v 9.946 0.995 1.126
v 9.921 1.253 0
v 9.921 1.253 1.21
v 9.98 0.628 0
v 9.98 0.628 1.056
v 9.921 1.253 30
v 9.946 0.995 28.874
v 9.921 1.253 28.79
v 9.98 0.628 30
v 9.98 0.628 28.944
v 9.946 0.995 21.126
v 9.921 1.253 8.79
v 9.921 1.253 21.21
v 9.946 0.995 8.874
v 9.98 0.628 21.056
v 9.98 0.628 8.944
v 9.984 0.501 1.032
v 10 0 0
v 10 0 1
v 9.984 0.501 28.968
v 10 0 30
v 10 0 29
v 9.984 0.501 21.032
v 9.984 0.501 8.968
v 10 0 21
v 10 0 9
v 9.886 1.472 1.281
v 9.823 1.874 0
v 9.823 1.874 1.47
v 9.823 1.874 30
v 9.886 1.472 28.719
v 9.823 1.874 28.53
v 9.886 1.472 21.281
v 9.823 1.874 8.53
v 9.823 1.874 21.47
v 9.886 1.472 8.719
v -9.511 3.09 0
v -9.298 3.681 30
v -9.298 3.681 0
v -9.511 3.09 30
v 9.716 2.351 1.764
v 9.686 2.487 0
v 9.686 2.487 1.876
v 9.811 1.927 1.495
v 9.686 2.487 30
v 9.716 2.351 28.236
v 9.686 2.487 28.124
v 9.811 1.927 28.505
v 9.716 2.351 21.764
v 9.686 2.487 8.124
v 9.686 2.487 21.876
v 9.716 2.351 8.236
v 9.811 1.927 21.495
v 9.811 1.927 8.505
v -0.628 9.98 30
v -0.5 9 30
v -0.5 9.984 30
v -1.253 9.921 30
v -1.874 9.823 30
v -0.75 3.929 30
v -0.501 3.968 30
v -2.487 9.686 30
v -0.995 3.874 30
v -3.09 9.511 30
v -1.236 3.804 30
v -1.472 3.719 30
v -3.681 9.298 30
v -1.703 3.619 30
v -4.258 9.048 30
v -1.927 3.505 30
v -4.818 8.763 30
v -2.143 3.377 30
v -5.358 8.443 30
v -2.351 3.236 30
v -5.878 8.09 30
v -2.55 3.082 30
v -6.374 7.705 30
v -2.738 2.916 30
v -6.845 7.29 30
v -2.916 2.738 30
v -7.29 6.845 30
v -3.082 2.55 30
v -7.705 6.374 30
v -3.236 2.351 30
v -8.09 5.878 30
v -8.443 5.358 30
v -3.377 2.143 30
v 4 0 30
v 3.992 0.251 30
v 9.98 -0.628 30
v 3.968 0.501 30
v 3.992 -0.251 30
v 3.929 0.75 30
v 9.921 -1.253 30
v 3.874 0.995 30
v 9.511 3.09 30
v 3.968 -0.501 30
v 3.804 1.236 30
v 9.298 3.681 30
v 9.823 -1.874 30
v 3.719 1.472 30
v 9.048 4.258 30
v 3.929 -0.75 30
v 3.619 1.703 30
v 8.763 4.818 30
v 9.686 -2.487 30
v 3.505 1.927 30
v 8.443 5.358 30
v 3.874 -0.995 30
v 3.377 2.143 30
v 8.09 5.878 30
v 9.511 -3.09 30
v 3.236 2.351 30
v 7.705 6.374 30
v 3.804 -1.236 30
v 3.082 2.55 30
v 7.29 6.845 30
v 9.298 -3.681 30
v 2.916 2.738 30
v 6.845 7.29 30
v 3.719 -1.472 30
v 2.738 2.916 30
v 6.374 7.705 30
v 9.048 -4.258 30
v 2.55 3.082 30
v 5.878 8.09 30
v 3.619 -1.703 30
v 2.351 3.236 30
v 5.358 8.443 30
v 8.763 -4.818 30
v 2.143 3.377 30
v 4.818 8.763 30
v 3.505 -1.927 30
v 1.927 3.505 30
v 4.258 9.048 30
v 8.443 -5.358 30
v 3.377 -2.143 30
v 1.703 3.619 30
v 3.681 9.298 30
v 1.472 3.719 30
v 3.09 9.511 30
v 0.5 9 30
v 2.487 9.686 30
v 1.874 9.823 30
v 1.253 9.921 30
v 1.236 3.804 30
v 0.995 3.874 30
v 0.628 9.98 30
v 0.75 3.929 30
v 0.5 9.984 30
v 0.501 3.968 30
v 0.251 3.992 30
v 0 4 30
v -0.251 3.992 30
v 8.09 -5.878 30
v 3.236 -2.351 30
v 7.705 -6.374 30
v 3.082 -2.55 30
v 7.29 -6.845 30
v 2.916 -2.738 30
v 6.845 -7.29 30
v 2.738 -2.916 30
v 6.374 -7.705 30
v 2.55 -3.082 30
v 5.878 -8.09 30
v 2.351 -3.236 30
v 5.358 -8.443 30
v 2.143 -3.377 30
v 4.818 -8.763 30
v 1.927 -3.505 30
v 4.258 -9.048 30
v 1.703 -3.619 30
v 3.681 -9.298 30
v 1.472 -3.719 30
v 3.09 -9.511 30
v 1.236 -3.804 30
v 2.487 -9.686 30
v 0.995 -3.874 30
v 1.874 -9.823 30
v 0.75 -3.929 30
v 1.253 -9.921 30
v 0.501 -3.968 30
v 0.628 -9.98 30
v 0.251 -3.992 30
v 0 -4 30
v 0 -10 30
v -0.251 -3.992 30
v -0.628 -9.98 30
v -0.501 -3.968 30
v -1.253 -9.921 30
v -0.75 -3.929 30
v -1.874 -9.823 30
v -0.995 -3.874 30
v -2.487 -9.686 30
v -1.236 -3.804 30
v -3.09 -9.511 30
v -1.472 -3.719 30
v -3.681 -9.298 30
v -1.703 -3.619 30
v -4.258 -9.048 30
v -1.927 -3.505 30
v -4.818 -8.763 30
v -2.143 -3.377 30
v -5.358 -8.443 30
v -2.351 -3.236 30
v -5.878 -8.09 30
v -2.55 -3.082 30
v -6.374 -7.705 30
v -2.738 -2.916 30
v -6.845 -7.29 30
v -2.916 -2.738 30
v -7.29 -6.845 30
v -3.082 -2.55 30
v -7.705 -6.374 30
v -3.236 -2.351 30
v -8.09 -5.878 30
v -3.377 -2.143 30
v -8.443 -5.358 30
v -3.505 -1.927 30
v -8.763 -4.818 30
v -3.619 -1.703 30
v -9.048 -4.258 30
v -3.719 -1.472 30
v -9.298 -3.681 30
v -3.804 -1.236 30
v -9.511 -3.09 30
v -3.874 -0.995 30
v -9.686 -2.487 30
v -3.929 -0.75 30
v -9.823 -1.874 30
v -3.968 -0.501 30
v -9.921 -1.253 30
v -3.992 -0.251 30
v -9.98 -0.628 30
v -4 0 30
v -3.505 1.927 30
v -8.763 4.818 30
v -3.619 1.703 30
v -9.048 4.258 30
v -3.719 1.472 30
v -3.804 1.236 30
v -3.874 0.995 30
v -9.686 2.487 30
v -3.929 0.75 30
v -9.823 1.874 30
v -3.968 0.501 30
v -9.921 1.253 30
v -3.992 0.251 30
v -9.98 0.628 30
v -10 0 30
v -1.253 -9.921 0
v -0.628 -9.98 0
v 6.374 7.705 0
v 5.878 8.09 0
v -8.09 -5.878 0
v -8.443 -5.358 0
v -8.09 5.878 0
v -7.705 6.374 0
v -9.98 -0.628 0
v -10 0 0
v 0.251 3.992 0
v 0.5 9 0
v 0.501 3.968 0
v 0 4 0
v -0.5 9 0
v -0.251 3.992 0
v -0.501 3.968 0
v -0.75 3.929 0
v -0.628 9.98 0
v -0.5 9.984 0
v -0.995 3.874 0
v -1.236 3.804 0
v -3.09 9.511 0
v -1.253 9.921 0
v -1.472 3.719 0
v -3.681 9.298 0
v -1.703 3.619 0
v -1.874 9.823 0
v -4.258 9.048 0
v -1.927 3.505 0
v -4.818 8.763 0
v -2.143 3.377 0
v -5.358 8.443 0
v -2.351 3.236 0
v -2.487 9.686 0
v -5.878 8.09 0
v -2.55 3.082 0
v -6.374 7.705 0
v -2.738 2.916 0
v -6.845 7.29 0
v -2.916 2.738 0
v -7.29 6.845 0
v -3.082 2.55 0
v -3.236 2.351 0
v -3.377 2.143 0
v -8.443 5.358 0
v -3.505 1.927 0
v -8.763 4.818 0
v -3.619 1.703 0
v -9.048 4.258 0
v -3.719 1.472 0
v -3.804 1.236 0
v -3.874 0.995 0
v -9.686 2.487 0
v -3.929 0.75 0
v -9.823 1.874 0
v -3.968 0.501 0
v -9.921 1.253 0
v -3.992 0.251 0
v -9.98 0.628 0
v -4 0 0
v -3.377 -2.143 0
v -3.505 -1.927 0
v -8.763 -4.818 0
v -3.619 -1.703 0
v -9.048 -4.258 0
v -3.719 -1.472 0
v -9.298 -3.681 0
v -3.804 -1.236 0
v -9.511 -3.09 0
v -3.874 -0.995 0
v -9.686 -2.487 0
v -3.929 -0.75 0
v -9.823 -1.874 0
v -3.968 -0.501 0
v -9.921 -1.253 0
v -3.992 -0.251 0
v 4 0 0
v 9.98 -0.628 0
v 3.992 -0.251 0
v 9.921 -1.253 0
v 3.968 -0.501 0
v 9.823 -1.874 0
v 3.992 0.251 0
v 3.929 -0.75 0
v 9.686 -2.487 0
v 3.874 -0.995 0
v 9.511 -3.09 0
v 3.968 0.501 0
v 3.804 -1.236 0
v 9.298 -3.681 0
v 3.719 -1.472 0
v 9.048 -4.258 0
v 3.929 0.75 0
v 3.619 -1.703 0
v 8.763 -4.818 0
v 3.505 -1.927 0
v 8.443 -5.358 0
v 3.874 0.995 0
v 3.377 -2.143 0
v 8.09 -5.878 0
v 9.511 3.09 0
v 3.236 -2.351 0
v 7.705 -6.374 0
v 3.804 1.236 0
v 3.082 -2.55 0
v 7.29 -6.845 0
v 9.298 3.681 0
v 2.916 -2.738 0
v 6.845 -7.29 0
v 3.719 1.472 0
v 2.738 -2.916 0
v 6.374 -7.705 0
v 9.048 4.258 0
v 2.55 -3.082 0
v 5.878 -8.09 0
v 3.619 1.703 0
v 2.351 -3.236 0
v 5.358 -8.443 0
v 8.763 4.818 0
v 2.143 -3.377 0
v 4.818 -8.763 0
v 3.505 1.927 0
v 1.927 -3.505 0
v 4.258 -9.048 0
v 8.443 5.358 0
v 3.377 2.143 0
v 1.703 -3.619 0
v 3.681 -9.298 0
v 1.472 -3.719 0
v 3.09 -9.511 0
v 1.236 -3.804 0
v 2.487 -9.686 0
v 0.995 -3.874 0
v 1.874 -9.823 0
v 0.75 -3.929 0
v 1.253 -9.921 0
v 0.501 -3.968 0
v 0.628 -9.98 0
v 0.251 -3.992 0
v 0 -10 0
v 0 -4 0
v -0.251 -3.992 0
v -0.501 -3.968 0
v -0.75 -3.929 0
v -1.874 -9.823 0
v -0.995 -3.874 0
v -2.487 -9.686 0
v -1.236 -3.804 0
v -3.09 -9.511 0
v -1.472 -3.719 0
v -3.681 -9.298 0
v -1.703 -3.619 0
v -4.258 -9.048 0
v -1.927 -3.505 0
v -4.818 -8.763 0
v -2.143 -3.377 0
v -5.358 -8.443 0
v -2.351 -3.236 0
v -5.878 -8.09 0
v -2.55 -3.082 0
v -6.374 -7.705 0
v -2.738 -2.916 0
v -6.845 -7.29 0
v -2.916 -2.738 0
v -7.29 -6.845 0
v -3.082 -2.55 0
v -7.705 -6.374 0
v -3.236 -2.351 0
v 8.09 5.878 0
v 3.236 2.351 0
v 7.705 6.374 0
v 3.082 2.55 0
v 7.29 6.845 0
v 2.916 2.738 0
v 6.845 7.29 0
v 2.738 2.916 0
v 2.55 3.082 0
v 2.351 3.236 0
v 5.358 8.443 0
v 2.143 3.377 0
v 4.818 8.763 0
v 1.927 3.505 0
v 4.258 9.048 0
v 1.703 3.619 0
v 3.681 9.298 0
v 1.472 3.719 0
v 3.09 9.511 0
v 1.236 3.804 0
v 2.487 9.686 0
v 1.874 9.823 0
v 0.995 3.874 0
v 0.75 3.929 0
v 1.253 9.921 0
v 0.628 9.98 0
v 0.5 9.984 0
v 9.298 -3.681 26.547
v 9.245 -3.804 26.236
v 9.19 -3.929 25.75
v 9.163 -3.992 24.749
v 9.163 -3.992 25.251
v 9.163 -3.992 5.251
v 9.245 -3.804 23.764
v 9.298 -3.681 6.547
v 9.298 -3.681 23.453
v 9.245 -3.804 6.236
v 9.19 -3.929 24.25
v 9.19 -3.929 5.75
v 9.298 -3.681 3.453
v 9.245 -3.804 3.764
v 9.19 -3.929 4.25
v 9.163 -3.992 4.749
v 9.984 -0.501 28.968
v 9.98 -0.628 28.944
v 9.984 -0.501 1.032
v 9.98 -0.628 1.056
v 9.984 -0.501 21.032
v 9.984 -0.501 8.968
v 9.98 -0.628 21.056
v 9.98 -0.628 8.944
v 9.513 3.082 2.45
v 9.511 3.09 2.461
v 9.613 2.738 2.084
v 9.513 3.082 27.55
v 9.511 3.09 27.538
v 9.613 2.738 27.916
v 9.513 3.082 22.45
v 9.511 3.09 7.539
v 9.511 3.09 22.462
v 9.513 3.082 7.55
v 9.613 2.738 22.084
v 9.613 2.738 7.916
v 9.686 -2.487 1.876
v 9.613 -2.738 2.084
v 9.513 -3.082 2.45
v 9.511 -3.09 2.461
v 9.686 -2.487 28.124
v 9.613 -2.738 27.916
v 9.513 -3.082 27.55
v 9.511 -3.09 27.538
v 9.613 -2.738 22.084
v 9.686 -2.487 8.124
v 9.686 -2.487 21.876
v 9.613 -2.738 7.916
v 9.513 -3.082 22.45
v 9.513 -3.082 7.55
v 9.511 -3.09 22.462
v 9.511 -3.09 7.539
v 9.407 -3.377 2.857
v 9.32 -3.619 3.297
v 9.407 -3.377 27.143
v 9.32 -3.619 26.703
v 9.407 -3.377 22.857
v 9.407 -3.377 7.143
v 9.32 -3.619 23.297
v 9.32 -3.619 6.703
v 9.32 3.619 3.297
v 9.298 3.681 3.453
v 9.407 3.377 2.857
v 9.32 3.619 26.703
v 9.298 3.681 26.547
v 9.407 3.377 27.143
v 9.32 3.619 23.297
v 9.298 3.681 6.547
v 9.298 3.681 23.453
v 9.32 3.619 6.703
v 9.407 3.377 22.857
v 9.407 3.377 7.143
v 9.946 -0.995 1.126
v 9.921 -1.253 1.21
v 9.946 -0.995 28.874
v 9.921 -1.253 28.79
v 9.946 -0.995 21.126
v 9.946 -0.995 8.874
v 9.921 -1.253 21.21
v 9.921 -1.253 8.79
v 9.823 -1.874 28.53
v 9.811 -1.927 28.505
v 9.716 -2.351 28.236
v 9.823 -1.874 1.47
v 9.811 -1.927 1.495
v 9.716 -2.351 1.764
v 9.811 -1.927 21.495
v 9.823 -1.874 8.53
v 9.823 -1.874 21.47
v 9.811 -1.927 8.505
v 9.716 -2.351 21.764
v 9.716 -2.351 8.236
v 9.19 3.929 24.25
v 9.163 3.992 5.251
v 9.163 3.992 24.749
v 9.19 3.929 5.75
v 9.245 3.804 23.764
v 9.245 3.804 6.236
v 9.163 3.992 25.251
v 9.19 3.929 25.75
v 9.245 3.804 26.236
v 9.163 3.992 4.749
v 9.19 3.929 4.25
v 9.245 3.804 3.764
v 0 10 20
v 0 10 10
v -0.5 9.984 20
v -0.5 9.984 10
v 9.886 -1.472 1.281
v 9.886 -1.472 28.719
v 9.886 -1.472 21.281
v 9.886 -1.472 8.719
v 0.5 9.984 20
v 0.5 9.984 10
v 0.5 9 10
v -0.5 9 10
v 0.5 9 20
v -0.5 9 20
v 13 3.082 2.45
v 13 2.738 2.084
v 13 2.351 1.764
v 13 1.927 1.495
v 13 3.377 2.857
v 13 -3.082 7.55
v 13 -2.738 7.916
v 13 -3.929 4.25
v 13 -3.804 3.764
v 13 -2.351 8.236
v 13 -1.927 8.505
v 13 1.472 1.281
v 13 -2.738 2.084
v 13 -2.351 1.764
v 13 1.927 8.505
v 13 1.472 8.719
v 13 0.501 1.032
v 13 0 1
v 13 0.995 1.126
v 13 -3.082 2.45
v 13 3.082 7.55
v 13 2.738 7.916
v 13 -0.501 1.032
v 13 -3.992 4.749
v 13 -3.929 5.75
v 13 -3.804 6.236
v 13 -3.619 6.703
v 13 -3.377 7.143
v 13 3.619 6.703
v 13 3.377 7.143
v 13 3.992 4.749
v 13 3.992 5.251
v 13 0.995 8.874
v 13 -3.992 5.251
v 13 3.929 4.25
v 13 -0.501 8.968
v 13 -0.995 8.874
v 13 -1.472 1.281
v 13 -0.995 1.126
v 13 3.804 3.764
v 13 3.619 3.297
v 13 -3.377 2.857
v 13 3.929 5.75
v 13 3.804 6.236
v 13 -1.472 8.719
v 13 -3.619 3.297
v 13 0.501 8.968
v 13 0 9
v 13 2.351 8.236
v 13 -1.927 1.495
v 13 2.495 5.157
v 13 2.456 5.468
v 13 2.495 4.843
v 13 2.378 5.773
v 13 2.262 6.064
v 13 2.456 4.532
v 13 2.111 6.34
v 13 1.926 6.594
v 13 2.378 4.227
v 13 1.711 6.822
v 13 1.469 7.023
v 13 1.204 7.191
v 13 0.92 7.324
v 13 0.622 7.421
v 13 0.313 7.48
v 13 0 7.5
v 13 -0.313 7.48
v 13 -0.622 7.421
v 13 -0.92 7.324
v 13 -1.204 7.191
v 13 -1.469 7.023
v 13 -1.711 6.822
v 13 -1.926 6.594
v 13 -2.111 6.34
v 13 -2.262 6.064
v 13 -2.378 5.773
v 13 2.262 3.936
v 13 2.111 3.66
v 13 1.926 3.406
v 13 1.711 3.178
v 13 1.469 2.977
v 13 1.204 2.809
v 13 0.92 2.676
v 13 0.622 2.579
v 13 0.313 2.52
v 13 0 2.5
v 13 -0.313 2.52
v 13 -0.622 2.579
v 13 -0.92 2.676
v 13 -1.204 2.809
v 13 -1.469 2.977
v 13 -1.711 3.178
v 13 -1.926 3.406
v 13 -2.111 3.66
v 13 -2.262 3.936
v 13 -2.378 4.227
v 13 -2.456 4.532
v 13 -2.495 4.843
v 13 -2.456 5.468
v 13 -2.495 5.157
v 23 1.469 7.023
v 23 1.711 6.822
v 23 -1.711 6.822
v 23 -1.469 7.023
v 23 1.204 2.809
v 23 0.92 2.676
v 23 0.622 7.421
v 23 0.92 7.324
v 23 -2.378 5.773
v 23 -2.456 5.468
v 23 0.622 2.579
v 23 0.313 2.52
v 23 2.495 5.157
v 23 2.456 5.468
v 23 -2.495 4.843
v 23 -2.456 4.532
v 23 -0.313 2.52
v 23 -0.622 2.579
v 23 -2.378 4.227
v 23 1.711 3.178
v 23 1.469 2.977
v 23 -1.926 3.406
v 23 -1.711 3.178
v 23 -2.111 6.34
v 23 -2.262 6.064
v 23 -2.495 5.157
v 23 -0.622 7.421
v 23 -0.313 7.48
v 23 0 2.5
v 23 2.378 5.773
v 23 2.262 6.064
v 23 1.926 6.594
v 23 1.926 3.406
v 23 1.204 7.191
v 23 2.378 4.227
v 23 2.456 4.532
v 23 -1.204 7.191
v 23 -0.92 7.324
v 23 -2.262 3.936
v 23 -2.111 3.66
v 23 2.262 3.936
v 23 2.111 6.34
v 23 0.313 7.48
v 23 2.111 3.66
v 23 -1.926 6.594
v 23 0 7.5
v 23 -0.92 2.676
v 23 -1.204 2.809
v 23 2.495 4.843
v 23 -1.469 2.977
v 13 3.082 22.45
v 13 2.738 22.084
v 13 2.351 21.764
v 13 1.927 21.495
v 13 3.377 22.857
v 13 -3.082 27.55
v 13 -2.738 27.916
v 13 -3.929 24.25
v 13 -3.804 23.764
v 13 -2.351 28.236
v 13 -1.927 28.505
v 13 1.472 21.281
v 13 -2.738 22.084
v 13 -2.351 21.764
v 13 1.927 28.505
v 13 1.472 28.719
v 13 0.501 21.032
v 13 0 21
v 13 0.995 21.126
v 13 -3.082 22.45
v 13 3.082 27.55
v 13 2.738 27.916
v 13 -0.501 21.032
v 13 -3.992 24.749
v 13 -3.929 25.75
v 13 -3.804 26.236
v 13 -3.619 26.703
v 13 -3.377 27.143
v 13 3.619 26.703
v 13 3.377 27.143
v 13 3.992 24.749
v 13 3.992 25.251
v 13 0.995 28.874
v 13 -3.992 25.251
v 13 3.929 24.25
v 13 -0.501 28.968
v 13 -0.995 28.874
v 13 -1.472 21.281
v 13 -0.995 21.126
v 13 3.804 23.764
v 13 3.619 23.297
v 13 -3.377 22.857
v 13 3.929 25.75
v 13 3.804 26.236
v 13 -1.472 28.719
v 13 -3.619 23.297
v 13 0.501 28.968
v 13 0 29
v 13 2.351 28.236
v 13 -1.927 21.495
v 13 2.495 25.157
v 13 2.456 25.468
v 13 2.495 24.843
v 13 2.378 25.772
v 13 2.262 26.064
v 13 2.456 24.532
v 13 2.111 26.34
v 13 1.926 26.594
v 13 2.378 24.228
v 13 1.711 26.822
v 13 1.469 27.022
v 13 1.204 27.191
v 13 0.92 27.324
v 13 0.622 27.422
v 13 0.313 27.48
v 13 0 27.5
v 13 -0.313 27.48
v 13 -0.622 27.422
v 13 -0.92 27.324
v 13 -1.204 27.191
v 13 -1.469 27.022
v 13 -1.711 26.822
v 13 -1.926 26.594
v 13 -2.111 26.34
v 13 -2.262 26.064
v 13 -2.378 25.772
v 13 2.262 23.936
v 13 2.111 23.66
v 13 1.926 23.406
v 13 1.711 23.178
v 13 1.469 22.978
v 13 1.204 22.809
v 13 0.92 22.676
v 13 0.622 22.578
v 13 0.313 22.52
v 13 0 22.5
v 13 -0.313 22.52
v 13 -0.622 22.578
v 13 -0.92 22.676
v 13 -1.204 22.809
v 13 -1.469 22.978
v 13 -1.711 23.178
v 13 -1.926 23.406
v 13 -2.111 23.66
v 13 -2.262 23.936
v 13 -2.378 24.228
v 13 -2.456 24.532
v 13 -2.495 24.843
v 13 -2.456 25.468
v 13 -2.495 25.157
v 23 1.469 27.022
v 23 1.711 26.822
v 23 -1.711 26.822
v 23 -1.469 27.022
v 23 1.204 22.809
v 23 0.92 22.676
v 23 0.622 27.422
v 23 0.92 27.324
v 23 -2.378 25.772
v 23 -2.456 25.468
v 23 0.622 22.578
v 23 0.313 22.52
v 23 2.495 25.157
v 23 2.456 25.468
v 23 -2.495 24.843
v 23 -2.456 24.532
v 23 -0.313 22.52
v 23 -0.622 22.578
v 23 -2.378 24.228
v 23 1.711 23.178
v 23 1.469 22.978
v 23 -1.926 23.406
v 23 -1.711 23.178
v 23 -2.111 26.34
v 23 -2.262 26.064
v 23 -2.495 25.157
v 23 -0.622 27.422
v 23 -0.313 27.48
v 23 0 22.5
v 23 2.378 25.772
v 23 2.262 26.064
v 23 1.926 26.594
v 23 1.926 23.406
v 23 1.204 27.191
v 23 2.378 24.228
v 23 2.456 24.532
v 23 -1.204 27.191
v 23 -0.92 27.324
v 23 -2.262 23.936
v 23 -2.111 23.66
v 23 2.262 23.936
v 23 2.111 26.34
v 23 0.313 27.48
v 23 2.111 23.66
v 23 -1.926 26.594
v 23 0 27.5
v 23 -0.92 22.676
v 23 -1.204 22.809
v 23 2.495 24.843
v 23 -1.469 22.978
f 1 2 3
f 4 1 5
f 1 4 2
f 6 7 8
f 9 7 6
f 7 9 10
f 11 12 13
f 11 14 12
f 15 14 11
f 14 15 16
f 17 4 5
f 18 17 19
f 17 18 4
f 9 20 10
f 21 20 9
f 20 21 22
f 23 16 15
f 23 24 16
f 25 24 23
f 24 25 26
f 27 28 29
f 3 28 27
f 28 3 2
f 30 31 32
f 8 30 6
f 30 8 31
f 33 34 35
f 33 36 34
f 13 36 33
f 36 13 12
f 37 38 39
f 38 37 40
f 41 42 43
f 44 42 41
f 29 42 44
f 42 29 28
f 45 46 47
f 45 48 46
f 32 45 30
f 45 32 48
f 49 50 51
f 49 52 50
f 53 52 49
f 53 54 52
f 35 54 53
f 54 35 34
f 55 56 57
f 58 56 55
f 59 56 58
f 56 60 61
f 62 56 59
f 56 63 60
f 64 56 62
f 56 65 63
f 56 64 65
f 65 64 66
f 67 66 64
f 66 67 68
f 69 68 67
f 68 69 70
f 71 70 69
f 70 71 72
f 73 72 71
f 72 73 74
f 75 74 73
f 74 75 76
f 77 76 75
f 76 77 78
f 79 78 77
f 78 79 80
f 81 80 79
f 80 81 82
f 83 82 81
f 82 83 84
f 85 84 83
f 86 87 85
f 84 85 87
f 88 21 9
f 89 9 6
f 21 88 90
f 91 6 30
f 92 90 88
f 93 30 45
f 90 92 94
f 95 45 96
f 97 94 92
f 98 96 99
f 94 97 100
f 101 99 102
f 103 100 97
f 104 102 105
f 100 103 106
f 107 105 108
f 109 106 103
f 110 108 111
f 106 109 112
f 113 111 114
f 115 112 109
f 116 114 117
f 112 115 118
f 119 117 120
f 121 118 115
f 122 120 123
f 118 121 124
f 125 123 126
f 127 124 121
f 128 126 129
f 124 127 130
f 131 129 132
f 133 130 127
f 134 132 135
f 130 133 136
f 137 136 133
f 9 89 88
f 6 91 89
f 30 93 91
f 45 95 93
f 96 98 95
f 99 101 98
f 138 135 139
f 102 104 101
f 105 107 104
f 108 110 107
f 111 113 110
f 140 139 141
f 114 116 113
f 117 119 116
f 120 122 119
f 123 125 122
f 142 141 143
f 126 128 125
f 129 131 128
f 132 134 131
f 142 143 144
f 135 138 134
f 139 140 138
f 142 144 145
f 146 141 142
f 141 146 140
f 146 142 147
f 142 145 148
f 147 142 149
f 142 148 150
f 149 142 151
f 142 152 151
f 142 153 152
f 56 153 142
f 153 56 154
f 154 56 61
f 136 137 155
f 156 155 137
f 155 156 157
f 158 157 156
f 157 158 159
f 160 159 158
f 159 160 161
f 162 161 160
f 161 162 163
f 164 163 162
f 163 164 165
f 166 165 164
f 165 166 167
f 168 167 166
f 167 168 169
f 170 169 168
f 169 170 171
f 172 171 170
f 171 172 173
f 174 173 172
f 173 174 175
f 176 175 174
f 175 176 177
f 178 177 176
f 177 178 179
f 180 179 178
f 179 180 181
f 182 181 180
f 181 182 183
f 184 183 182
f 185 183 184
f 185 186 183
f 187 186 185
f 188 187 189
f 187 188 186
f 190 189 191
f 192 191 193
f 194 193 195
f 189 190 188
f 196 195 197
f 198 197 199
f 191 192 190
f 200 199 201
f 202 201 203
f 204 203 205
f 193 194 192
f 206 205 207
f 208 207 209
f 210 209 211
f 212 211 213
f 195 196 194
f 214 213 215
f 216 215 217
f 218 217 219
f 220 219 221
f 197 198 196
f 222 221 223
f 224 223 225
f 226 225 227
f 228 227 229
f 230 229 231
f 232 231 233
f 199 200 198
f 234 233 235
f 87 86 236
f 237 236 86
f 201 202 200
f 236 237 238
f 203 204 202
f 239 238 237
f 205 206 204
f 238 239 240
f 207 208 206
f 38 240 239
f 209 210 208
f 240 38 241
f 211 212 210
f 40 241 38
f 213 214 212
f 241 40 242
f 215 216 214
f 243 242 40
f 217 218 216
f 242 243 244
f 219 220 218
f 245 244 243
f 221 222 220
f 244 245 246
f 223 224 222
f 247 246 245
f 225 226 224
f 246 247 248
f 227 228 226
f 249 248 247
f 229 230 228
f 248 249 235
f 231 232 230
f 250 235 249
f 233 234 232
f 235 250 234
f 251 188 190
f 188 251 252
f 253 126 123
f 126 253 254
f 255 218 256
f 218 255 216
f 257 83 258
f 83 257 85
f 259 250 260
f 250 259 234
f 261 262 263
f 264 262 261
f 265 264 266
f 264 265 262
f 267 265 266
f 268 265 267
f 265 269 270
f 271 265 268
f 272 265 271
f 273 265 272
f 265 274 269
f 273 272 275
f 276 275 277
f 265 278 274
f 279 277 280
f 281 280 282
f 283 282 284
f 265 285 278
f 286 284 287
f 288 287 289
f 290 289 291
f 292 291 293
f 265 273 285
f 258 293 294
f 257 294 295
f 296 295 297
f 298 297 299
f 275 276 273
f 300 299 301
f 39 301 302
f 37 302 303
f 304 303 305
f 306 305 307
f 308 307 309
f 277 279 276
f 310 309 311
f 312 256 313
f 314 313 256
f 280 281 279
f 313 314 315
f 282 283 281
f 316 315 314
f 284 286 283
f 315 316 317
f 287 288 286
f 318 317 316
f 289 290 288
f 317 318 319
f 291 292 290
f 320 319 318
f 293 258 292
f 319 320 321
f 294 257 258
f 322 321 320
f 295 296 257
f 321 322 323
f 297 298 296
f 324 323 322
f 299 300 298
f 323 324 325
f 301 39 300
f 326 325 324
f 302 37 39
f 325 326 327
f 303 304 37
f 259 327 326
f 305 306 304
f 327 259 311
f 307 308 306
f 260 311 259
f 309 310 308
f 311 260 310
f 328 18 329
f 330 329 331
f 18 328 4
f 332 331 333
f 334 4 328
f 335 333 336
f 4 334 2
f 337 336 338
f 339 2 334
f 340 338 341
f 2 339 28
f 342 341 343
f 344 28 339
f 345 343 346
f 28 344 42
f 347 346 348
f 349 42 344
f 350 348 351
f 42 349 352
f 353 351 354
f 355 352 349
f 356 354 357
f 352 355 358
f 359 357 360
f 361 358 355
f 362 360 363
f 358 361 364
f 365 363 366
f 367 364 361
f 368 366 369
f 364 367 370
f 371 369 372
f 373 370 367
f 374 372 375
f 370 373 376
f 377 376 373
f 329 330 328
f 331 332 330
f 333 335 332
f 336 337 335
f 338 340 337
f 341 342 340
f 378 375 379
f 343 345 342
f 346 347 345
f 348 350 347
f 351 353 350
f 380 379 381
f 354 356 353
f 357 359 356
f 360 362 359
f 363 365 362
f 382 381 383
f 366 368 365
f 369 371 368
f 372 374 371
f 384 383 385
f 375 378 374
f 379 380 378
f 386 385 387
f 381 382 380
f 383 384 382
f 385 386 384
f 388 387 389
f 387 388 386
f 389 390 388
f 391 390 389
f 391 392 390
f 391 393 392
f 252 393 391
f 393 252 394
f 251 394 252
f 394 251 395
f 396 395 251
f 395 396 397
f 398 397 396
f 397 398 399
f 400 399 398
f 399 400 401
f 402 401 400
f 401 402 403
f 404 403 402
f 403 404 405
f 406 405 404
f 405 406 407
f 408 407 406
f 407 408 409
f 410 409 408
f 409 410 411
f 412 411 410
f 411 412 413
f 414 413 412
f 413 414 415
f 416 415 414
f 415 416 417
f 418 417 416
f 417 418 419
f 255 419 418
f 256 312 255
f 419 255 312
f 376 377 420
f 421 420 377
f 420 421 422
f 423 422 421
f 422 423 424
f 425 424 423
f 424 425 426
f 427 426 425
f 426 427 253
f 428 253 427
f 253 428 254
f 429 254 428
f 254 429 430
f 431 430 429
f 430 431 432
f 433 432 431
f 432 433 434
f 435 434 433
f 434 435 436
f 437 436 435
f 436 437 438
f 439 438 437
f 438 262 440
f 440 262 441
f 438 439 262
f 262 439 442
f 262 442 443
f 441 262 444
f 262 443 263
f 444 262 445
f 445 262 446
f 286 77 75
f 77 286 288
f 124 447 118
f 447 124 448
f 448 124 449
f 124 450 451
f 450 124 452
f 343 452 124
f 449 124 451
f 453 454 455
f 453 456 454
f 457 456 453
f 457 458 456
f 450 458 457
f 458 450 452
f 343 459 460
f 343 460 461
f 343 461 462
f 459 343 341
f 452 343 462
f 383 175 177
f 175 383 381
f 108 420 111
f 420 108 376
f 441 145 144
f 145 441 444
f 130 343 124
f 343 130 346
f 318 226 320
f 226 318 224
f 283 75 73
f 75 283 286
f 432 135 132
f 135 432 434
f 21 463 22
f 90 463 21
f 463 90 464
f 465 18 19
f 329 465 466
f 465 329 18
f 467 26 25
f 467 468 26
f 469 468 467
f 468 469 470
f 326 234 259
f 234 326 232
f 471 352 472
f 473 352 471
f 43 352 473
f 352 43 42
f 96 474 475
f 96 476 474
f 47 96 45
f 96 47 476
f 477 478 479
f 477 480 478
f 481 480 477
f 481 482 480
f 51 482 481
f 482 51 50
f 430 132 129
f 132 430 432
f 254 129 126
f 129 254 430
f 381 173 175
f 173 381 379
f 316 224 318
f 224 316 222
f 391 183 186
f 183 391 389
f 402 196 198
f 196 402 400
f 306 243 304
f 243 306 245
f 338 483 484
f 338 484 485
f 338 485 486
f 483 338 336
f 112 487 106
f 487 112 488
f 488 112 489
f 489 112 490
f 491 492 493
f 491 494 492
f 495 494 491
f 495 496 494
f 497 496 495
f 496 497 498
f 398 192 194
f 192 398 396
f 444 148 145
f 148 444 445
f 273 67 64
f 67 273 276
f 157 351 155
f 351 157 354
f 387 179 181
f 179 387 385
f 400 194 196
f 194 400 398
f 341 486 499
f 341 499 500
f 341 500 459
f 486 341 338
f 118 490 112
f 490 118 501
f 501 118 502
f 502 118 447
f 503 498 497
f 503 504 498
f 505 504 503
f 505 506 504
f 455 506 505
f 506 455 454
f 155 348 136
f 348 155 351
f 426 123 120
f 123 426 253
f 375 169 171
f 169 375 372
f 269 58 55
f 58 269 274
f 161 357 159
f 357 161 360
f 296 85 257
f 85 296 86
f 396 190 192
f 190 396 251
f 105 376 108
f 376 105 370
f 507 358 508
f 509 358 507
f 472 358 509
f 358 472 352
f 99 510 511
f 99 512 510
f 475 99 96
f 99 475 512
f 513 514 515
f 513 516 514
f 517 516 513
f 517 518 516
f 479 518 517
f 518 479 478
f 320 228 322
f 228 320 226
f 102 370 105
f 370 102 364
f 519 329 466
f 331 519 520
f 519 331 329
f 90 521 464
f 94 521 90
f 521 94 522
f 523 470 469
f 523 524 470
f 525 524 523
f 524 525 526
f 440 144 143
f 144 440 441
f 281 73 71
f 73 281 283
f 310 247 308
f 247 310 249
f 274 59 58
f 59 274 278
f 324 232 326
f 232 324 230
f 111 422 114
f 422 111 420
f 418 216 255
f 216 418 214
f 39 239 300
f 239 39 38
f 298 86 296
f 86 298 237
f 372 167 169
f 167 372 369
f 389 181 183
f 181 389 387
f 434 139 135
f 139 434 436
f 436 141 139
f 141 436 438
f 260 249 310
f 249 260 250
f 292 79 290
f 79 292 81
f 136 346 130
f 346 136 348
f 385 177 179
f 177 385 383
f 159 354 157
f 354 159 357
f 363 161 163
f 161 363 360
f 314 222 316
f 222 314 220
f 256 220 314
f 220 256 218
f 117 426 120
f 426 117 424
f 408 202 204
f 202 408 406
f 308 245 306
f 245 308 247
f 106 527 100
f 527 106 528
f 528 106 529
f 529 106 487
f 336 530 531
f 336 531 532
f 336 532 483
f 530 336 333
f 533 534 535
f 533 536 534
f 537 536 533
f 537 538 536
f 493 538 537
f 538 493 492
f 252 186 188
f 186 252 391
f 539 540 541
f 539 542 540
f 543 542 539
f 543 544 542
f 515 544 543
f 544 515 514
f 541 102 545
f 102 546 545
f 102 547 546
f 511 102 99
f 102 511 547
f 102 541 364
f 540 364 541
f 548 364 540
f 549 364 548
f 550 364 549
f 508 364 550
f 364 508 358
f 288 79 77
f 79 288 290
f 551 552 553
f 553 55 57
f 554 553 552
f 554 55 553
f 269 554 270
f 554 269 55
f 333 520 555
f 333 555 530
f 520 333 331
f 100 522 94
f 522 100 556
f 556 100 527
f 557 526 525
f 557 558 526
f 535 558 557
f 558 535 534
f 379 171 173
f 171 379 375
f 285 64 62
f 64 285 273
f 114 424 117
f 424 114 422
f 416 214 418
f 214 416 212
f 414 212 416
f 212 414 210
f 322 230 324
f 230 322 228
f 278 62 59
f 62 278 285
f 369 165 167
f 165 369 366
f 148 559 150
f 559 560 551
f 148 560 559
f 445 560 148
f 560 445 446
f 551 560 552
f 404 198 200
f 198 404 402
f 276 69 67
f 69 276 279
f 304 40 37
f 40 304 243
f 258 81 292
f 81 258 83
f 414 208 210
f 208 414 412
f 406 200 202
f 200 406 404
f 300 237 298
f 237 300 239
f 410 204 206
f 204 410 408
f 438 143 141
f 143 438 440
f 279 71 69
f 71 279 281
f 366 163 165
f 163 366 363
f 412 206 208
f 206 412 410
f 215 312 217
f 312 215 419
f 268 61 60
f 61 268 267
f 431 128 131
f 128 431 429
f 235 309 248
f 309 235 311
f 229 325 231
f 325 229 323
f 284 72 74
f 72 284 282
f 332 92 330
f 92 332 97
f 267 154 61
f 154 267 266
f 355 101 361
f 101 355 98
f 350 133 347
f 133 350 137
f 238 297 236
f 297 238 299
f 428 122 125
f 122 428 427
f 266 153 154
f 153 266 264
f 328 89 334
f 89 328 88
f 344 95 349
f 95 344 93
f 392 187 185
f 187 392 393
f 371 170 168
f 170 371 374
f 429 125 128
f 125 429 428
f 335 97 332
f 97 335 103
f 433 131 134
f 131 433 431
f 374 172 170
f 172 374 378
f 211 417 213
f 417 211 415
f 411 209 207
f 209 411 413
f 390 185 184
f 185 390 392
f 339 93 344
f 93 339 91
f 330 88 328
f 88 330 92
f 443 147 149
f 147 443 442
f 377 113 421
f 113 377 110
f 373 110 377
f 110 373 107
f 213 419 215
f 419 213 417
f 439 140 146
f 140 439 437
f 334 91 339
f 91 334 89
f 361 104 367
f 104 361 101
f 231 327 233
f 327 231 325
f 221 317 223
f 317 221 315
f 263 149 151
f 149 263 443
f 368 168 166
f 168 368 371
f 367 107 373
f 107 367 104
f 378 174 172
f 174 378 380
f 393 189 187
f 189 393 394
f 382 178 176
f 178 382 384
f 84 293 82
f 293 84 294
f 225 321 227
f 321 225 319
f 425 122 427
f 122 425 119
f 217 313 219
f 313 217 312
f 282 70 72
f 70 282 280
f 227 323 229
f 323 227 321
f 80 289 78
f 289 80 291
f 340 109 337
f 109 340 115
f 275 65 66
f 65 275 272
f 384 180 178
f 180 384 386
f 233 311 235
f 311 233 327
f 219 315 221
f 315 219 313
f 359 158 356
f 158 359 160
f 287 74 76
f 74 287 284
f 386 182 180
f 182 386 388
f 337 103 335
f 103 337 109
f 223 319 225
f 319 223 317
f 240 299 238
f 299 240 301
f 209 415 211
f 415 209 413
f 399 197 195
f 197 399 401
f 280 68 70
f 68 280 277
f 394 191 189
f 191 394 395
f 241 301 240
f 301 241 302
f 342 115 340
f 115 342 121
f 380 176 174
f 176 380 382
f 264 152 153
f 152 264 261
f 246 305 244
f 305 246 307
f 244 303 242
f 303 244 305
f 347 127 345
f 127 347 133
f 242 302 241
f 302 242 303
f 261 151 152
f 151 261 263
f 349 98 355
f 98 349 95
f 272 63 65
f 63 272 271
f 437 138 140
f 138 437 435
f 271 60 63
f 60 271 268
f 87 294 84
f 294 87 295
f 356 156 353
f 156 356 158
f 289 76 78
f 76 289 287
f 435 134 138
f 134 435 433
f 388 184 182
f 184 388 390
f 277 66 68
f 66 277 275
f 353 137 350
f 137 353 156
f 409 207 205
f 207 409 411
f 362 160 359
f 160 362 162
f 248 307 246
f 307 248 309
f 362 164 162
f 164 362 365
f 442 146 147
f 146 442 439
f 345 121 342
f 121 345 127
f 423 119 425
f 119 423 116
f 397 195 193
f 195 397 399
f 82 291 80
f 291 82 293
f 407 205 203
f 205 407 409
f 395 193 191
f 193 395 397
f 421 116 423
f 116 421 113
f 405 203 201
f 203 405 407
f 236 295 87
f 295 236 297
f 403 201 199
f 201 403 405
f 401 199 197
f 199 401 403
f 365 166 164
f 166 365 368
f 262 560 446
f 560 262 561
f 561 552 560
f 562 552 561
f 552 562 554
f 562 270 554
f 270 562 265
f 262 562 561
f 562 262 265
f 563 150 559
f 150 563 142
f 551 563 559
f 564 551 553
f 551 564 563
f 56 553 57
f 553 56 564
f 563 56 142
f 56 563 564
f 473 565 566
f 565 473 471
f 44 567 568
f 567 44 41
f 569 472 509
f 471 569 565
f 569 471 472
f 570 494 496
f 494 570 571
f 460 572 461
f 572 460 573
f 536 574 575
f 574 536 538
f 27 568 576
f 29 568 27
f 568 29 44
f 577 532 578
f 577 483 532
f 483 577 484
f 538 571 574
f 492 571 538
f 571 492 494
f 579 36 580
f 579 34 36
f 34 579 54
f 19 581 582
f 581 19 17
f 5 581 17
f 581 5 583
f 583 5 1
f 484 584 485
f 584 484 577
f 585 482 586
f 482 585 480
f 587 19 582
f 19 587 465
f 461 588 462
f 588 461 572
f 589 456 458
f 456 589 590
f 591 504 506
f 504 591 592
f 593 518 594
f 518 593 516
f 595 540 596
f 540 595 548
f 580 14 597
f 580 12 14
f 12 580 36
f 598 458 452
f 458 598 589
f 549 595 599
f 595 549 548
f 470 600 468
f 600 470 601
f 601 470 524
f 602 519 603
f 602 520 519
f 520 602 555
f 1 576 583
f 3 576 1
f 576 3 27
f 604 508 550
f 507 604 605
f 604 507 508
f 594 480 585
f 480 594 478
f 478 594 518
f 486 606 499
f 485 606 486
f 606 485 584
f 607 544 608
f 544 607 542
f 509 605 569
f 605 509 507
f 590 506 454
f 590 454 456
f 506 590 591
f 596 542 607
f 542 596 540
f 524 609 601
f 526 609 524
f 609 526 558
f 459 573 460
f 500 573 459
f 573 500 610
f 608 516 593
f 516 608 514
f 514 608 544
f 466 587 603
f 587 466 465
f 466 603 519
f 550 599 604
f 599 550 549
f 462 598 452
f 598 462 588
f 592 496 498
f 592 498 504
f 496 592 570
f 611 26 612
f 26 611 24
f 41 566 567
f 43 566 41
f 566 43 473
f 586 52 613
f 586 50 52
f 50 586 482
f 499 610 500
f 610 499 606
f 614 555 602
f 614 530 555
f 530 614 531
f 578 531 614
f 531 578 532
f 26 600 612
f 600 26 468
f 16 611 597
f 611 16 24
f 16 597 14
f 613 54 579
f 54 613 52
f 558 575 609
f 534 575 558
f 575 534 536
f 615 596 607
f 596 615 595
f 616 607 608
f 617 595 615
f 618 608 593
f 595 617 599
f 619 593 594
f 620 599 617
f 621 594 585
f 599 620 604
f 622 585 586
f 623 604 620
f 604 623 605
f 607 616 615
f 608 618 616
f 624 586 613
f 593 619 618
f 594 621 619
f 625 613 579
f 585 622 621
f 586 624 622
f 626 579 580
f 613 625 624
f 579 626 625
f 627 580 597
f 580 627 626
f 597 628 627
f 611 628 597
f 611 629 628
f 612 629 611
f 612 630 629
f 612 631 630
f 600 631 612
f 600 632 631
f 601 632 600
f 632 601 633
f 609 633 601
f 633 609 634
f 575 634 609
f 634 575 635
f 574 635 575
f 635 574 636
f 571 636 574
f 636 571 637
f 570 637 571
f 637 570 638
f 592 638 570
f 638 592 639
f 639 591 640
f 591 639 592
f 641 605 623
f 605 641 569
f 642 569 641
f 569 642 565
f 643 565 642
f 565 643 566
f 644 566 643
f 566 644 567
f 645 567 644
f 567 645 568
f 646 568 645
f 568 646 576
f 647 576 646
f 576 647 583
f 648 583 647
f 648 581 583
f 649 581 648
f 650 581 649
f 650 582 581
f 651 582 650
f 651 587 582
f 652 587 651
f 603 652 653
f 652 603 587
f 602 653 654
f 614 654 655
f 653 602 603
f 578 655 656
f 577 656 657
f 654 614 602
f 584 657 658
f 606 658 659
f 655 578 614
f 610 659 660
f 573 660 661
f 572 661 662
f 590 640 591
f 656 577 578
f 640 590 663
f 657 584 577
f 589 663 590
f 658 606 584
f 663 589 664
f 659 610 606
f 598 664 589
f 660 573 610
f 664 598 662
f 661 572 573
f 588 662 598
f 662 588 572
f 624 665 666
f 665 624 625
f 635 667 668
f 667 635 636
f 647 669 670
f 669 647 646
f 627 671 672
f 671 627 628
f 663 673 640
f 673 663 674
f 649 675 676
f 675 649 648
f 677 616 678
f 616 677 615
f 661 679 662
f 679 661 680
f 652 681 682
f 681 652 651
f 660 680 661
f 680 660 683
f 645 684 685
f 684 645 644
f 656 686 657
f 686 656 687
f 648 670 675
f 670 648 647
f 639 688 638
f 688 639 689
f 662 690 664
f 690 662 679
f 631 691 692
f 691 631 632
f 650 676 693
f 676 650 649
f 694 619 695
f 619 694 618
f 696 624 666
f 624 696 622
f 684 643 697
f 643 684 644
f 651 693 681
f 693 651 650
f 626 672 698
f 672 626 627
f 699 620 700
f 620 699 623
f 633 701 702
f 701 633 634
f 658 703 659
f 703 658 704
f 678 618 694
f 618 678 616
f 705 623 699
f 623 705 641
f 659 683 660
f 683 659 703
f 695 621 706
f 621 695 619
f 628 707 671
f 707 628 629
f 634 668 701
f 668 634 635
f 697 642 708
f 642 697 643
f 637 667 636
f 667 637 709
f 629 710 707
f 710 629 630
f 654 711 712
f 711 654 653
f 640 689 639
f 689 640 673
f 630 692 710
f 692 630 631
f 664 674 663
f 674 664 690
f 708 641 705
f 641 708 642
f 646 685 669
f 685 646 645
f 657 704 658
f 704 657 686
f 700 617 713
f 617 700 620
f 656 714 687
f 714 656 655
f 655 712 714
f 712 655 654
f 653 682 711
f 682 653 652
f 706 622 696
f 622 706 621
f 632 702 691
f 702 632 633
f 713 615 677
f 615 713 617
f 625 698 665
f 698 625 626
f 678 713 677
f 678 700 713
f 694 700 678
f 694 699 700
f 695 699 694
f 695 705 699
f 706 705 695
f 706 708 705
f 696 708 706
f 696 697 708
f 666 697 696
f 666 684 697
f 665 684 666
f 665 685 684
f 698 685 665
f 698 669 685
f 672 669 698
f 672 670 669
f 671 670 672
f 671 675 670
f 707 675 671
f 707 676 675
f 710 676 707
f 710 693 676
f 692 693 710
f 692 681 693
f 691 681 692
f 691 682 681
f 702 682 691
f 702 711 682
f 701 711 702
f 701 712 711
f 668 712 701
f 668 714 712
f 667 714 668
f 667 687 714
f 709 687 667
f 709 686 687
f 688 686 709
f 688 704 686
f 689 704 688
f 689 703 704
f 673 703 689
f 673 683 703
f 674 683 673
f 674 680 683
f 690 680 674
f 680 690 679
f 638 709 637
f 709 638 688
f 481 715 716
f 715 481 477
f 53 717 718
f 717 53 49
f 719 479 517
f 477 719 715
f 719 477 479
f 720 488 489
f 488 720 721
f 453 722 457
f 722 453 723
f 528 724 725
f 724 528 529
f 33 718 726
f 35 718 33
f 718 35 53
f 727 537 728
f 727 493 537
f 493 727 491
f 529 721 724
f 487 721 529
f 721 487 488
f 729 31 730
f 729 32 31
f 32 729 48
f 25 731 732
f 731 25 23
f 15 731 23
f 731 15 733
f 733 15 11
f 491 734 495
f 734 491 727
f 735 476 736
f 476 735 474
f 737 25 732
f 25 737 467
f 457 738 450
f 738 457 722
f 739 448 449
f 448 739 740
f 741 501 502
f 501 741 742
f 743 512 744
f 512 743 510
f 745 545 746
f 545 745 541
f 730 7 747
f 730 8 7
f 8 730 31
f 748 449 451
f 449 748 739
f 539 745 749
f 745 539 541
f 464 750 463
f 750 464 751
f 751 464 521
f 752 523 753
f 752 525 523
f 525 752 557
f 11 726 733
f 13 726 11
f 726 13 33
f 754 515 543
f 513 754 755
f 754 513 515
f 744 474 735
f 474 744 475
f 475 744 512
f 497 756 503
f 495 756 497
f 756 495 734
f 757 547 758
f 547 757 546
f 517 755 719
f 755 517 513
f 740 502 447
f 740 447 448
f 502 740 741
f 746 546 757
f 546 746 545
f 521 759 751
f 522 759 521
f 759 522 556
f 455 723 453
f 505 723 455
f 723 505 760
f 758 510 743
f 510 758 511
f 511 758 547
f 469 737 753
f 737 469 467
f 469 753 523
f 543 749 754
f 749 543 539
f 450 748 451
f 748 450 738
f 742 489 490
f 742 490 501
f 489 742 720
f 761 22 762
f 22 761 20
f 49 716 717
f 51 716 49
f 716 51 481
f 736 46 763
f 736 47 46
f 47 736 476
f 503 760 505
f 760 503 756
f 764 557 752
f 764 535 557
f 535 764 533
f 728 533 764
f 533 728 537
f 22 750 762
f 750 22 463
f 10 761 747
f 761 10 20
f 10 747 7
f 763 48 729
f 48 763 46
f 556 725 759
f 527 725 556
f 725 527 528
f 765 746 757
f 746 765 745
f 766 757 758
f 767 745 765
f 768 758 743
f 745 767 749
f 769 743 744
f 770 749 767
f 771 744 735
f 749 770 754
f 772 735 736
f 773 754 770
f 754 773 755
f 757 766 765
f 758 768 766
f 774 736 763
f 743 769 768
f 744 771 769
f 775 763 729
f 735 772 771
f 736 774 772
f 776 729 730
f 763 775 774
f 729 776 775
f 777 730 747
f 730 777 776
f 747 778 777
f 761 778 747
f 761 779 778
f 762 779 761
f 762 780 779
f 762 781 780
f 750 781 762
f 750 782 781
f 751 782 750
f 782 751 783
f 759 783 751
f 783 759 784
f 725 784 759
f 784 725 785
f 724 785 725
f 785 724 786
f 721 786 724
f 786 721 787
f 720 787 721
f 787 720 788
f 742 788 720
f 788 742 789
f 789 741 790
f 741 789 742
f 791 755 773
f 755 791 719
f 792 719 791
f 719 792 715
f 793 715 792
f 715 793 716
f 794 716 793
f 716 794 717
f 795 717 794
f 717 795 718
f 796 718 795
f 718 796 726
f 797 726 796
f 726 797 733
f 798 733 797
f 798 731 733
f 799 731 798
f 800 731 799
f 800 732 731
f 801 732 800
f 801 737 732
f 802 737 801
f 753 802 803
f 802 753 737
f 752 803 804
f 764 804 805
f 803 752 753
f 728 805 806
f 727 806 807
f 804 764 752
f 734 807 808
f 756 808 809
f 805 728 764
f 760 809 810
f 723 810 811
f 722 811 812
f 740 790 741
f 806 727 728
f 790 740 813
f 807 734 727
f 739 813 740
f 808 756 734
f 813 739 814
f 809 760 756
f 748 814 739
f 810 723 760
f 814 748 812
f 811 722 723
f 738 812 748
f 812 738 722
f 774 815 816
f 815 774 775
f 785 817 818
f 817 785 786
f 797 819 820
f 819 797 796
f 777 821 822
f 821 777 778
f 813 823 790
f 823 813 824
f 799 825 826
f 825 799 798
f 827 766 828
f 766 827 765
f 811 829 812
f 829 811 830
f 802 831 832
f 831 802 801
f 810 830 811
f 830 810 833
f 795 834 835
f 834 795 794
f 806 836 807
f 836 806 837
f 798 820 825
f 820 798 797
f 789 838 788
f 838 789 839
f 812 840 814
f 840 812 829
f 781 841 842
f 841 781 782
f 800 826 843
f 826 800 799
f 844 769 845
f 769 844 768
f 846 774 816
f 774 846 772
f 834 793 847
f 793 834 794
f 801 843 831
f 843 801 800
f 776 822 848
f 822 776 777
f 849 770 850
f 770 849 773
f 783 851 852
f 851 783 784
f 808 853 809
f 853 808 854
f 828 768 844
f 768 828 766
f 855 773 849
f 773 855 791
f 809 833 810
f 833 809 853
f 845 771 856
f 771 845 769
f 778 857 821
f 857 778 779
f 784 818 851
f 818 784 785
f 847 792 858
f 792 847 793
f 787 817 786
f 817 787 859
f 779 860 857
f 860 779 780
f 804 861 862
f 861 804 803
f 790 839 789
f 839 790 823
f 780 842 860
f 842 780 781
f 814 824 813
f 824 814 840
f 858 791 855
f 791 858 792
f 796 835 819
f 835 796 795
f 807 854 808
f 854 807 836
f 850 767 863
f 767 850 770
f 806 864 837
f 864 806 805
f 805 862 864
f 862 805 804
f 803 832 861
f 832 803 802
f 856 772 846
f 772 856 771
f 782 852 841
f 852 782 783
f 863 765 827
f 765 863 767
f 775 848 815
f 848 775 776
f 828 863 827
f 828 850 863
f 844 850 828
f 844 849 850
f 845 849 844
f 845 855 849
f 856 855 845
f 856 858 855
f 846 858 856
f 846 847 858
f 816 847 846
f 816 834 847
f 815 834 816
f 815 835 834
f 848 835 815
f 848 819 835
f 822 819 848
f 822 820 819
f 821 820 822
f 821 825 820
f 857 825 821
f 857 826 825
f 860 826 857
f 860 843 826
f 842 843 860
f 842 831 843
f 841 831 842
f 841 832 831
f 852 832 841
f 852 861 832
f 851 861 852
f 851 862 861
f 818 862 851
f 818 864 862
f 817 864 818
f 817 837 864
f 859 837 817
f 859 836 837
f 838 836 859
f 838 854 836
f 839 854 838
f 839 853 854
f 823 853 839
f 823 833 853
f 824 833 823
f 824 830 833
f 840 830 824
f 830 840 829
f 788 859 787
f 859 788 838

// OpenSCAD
// Parameters
coupling_diameter = 20;
coupling_length = 30;
bore_diameter = 8;
bore_depth = 15;
slit_width = 1;
slit_depth = 10;
screw_diameter = 5;
screw_head_diameter = 8;
screw_head_depth = 4;
hex_radius = 2.5;

// Main assembly
module flexible_coupling() {
    difference() {
        // Main cylindrical body
        cylinder(h = coupling_length, d = coupling_diameter, $fn=100);

        // Axial bores on both ends
        translate([0, 0, 0])
            cylinder(h = bore_depth, d = bore_diameter, $fn=100);
        translate([0, 0, coupling_length - bore_depth])
            cylinder(h = bore_depth, d = bore_diameter, $fn=100);

        // Slits on both ends
        translate([-slit_width/2, coupling_diameter/2 - 1, 0])
            cube([slit_width, 2, slit_depth]);
        translate([-slit_width/2, coupling_diameter/2 - 1, coupling_length - slit_depth])
            cube([slit_width, 2, slit_depth]);

        // Recessed hex holes for screws
        for (z = [5, coupling_length - 5]) {
            translate([coupling_diameter/2 - 1, 0, z])
                rotate([0, 90, 0])
                    hex_hole();
        }
    }

    // Screws
    for (z = [5, coupling_length - 5]) {
        translate([coupling_diameter/2 - 1, 0, z])
            rotate([0, 90, 0])
                screw();
    }
}

// Hexagonal hole for screw head
module hex_hole() {
    cylinder(h = screw_head_depth, r = hex_radius, $fn=6);
    translate([0, 0, screw_head_depth])
        cylinder(h = 10, d = screw_diameter, $fn=50);
}

// Screw model (simplified)
module screw() {
    union() {
        // Head
        cylinder(h = screw_head_depth, r = screw_head_diameter/2, $fn=50);
        // Shaft
        translate([0, 0, screw_head_depth])
            cylinder(h = 10, d = screw_diameter, $fn=50);
    }
}

// Render the model
flexible_coupling();
